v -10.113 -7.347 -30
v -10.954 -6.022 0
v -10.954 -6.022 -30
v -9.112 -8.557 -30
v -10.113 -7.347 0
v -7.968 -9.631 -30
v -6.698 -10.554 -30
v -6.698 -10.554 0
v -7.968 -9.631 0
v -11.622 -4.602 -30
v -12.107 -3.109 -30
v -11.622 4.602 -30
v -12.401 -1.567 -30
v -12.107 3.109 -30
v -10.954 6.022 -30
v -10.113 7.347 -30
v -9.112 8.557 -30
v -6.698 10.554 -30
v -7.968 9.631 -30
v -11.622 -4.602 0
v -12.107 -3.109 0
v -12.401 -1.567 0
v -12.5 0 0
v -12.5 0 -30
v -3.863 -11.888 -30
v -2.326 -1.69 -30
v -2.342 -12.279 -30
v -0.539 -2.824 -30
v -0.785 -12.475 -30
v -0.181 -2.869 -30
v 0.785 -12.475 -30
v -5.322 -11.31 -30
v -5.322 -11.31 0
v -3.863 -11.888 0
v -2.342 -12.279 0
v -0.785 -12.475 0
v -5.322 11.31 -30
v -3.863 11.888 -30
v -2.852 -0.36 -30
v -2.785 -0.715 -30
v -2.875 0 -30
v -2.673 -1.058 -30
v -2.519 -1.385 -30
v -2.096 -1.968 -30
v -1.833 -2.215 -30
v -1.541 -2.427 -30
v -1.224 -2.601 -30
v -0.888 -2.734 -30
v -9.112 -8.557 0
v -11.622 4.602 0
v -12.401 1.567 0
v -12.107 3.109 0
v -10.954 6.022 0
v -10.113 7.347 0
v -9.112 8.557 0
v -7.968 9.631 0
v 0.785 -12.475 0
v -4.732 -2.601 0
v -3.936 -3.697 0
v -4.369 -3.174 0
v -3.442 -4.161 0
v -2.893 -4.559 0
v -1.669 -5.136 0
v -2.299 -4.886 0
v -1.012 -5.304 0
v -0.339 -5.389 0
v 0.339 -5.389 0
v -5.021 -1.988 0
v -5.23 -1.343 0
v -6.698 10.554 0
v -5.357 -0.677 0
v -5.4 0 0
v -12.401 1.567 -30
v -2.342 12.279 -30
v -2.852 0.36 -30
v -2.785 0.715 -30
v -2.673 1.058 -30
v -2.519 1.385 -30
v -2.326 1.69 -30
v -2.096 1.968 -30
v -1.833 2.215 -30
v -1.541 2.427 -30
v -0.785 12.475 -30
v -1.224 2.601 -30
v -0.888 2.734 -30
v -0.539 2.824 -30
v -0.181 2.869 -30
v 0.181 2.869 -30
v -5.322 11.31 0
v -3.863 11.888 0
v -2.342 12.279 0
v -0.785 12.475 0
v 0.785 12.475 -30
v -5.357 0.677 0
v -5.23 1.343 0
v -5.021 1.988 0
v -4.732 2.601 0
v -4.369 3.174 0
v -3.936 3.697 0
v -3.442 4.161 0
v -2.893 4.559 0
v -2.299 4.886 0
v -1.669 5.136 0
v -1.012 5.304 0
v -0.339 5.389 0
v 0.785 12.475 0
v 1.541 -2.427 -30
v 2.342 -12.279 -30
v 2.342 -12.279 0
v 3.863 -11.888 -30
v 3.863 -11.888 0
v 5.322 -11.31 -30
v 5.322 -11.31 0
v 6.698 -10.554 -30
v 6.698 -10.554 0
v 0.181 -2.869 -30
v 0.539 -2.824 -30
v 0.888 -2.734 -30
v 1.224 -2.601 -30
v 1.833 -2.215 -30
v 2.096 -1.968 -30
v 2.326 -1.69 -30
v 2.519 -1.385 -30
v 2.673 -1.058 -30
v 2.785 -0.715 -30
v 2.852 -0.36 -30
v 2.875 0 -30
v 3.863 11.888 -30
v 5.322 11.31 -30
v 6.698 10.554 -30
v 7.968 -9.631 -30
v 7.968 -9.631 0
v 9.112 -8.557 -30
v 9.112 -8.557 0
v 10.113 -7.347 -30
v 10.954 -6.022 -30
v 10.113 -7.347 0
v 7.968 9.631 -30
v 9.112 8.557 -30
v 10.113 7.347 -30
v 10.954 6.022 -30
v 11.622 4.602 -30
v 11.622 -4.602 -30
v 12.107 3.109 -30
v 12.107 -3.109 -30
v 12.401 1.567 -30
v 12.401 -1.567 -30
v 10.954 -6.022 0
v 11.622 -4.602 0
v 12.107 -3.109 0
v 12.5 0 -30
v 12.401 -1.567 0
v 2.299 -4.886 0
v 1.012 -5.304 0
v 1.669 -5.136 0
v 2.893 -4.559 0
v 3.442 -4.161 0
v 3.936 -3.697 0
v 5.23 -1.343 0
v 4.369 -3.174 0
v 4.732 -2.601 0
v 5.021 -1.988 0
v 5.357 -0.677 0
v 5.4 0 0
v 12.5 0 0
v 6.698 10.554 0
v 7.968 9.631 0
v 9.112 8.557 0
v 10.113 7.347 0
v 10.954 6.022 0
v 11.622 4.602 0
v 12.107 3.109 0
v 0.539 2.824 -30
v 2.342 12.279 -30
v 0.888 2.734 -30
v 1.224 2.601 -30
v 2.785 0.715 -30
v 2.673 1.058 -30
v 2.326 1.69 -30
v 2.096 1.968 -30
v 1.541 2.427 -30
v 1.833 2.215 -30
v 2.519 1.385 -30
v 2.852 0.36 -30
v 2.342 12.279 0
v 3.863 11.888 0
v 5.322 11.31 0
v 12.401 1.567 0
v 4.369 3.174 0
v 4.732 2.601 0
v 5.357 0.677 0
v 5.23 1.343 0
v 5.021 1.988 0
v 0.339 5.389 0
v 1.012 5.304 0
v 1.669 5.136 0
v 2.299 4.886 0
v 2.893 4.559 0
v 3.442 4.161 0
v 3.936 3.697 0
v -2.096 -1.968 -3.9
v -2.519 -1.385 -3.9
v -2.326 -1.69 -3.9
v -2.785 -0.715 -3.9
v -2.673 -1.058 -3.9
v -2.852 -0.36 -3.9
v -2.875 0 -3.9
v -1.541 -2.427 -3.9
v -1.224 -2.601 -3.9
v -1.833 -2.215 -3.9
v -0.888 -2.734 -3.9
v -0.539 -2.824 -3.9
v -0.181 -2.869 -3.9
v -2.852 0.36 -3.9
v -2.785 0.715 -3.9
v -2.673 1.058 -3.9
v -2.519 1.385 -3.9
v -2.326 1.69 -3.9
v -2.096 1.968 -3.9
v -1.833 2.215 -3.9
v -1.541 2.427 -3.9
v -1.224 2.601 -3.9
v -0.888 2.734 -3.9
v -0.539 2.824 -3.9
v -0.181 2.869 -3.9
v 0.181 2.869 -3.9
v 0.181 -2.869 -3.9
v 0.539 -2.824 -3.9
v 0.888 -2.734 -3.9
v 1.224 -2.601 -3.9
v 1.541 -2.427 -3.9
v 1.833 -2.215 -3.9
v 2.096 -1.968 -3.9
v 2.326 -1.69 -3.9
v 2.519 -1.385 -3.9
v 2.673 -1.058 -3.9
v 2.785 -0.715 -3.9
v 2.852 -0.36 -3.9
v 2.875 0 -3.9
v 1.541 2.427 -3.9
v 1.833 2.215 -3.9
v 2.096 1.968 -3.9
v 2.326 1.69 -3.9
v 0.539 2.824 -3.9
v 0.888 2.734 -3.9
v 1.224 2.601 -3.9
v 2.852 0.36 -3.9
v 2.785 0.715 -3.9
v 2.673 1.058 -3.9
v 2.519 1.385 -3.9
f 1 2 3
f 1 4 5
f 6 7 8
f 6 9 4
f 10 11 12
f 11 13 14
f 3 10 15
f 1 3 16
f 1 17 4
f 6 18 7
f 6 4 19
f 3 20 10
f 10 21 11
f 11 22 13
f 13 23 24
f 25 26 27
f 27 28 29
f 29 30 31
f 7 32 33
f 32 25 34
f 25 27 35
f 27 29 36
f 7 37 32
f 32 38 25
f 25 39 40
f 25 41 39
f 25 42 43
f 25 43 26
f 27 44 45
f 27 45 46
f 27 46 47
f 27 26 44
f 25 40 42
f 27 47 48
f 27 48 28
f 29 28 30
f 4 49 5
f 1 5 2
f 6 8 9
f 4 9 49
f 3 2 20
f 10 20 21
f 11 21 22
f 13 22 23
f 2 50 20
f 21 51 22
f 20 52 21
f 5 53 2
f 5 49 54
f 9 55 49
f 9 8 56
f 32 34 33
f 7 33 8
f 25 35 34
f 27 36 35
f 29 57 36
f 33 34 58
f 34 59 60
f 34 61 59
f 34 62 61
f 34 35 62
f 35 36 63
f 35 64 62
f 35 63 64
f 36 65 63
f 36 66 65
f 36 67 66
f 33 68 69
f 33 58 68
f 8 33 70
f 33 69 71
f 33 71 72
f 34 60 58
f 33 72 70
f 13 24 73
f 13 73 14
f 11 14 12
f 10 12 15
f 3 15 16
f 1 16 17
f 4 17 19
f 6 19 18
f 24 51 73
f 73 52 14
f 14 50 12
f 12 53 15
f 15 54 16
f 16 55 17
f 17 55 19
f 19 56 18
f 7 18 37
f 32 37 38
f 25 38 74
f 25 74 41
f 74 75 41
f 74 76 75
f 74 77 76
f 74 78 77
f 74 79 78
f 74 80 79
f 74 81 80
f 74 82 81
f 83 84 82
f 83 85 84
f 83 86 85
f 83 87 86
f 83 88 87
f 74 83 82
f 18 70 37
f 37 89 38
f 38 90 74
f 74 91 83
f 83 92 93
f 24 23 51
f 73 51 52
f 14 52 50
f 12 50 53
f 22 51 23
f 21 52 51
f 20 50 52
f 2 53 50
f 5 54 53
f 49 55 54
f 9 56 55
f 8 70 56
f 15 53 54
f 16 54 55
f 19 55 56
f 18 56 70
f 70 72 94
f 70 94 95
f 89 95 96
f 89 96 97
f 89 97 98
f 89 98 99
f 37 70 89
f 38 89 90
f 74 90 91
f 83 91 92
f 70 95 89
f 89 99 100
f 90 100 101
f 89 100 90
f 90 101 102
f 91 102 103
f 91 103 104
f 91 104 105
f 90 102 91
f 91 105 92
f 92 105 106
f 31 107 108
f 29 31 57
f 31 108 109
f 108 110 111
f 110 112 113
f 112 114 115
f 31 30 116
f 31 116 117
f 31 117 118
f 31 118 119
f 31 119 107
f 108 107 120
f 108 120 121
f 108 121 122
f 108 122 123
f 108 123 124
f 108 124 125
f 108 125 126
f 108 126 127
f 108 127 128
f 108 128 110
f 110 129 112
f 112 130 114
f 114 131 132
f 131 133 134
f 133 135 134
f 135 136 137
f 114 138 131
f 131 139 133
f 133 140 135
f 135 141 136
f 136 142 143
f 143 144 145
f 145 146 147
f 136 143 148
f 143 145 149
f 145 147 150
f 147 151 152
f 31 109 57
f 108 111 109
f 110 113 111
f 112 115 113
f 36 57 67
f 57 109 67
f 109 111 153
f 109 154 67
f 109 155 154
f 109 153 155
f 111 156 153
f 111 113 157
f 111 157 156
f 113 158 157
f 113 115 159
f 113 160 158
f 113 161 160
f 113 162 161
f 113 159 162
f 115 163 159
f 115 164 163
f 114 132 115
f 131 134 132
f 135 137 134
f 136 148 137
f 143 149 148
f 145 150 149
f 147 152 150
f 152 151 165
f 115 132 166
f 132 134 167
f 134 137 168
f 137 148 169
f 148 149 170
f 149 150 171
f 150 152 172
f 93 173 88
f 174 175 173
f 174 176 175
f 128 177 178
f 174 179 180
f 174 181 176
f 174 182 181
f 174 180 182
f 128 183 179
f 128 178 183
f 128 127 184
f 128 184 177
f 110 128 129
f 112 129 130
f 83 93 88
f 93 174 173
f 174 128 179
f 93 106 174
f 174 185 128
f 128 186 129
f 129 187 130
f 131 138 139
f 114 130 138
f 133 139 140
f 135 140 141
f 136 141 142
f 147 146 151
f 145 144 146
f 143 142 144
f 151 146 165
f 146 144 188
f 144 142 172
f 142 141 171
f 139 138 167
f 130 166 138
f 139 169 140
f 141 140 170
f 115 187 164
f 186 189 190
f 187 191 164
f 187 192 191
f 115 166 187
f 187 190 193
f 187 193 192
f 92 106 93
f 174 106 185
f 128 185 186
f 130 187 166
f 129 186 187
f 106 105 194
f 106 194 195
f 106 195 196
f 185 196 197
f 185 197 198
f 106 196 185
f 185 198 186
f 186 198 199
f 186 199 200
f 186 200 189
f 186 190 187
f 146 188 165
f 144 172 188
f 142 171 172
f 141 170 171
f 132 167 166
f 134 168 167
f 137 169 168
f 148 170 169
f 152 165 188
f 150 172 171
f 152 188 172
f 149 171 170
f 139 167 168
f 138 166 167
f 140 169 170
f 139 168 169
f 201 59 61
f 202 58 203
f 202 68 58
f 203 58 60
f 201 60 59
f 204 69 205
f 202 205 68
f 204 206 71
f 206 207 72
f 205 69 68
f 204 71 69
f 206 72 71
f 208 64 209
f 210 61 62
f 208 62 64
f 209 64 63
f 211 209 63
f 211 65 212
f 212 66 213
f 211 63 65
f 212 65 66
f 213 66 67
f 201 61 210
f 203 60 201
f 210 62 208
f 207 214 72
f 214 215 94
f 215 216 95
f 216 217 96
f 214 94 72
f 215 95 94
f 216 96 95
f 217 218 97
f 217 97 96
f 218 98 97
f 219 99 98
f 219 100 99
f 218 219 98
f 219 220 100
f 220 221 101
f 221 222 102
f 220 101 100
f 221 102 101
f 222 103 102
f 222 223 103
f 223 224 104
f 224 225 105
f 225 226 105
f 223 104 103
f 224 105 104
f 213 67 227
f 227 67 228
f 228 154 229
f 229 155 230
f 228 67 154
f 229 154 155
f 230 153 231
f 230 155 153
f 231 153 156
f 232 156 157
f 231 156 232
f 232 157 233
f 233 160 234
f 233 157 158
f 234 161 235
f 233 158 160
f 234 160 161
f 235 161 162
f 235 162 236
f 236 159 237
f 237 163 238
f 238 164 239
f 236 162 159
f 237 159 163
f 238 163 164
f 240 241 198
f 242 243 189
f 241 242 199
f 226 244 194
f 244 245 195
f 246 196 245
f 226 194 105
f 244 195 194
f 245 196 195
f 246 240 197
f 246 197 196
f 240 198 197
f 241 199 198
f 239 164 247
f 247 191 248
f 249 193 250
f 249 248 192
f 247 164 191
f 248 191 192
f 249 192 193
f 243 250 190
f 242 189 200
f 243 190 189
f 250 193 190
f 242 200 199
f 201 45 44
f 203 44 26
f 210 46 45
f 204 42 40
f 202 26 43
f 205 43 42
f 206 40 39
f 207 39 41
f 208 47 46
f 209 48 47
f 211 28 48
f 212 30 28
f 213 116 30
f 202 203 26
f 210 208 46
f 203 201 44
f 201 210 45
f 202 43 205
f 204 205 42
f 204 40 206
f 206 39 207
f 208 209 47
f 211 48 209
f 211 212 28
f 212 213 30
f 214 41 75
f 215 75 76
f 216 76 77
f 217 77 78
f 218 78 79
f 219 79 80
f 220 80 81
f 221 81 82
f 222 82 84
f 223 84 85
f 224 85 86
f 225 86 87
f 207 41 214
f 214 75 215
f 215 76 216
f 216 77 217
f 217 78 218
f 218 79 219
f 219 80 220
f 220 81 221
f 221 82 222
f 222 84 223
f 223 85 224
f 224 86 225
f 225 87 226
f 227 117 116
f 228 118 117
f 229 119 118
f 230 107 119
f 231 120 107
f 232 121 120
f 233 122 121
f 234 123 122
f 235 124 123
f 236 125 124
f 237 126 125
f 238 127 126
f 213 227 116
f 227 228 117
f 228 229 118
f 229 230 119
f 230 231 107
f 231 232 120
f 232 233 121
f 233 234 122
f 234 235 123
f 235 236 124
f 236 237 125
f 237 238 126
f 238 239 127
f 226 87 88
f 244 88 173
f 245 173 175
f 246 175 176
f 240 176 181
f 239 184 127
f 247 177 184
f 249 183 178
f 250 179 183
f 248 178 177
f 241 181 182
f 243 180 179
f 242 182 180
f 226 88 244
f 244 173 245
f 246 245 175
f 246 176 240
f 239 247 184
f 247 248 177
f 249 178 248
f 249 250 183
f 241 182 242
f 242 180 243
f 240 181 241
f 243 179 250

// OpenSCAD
$fn = 50;


difference() {
	union() {
		translate(v = [0, 0, -30.0000000000]) {
			cylinder(h = 30, r = 12.5000000000);
		}
	}
	union() {
		translate(v = [0, 0, 0]) {
			rotate(a = [0, 0, 0]) {
				difference() {
					union() {
						translate(v = [0, 0, -33.0000000000]) {
							cylinder(h = 33, r = 2.6000000000);
						}
						translate(v = [0, 0, -3.9000000000]) {
							cylinder(h = 3.9000000000, r1 = 2.8750000000, r2 = 5.4000000000);
						}
						translate(v = [0, 0, -33.0000000000]) {
							cylinder(h = 33, r = 2.8750000000);
						}
						translate(v = [0, 0, -33.0000000000]) {
							cylinder(h = 33, r = 2.6000000000);
						}
					}
					union();
				}
			}
		}
	}
}
